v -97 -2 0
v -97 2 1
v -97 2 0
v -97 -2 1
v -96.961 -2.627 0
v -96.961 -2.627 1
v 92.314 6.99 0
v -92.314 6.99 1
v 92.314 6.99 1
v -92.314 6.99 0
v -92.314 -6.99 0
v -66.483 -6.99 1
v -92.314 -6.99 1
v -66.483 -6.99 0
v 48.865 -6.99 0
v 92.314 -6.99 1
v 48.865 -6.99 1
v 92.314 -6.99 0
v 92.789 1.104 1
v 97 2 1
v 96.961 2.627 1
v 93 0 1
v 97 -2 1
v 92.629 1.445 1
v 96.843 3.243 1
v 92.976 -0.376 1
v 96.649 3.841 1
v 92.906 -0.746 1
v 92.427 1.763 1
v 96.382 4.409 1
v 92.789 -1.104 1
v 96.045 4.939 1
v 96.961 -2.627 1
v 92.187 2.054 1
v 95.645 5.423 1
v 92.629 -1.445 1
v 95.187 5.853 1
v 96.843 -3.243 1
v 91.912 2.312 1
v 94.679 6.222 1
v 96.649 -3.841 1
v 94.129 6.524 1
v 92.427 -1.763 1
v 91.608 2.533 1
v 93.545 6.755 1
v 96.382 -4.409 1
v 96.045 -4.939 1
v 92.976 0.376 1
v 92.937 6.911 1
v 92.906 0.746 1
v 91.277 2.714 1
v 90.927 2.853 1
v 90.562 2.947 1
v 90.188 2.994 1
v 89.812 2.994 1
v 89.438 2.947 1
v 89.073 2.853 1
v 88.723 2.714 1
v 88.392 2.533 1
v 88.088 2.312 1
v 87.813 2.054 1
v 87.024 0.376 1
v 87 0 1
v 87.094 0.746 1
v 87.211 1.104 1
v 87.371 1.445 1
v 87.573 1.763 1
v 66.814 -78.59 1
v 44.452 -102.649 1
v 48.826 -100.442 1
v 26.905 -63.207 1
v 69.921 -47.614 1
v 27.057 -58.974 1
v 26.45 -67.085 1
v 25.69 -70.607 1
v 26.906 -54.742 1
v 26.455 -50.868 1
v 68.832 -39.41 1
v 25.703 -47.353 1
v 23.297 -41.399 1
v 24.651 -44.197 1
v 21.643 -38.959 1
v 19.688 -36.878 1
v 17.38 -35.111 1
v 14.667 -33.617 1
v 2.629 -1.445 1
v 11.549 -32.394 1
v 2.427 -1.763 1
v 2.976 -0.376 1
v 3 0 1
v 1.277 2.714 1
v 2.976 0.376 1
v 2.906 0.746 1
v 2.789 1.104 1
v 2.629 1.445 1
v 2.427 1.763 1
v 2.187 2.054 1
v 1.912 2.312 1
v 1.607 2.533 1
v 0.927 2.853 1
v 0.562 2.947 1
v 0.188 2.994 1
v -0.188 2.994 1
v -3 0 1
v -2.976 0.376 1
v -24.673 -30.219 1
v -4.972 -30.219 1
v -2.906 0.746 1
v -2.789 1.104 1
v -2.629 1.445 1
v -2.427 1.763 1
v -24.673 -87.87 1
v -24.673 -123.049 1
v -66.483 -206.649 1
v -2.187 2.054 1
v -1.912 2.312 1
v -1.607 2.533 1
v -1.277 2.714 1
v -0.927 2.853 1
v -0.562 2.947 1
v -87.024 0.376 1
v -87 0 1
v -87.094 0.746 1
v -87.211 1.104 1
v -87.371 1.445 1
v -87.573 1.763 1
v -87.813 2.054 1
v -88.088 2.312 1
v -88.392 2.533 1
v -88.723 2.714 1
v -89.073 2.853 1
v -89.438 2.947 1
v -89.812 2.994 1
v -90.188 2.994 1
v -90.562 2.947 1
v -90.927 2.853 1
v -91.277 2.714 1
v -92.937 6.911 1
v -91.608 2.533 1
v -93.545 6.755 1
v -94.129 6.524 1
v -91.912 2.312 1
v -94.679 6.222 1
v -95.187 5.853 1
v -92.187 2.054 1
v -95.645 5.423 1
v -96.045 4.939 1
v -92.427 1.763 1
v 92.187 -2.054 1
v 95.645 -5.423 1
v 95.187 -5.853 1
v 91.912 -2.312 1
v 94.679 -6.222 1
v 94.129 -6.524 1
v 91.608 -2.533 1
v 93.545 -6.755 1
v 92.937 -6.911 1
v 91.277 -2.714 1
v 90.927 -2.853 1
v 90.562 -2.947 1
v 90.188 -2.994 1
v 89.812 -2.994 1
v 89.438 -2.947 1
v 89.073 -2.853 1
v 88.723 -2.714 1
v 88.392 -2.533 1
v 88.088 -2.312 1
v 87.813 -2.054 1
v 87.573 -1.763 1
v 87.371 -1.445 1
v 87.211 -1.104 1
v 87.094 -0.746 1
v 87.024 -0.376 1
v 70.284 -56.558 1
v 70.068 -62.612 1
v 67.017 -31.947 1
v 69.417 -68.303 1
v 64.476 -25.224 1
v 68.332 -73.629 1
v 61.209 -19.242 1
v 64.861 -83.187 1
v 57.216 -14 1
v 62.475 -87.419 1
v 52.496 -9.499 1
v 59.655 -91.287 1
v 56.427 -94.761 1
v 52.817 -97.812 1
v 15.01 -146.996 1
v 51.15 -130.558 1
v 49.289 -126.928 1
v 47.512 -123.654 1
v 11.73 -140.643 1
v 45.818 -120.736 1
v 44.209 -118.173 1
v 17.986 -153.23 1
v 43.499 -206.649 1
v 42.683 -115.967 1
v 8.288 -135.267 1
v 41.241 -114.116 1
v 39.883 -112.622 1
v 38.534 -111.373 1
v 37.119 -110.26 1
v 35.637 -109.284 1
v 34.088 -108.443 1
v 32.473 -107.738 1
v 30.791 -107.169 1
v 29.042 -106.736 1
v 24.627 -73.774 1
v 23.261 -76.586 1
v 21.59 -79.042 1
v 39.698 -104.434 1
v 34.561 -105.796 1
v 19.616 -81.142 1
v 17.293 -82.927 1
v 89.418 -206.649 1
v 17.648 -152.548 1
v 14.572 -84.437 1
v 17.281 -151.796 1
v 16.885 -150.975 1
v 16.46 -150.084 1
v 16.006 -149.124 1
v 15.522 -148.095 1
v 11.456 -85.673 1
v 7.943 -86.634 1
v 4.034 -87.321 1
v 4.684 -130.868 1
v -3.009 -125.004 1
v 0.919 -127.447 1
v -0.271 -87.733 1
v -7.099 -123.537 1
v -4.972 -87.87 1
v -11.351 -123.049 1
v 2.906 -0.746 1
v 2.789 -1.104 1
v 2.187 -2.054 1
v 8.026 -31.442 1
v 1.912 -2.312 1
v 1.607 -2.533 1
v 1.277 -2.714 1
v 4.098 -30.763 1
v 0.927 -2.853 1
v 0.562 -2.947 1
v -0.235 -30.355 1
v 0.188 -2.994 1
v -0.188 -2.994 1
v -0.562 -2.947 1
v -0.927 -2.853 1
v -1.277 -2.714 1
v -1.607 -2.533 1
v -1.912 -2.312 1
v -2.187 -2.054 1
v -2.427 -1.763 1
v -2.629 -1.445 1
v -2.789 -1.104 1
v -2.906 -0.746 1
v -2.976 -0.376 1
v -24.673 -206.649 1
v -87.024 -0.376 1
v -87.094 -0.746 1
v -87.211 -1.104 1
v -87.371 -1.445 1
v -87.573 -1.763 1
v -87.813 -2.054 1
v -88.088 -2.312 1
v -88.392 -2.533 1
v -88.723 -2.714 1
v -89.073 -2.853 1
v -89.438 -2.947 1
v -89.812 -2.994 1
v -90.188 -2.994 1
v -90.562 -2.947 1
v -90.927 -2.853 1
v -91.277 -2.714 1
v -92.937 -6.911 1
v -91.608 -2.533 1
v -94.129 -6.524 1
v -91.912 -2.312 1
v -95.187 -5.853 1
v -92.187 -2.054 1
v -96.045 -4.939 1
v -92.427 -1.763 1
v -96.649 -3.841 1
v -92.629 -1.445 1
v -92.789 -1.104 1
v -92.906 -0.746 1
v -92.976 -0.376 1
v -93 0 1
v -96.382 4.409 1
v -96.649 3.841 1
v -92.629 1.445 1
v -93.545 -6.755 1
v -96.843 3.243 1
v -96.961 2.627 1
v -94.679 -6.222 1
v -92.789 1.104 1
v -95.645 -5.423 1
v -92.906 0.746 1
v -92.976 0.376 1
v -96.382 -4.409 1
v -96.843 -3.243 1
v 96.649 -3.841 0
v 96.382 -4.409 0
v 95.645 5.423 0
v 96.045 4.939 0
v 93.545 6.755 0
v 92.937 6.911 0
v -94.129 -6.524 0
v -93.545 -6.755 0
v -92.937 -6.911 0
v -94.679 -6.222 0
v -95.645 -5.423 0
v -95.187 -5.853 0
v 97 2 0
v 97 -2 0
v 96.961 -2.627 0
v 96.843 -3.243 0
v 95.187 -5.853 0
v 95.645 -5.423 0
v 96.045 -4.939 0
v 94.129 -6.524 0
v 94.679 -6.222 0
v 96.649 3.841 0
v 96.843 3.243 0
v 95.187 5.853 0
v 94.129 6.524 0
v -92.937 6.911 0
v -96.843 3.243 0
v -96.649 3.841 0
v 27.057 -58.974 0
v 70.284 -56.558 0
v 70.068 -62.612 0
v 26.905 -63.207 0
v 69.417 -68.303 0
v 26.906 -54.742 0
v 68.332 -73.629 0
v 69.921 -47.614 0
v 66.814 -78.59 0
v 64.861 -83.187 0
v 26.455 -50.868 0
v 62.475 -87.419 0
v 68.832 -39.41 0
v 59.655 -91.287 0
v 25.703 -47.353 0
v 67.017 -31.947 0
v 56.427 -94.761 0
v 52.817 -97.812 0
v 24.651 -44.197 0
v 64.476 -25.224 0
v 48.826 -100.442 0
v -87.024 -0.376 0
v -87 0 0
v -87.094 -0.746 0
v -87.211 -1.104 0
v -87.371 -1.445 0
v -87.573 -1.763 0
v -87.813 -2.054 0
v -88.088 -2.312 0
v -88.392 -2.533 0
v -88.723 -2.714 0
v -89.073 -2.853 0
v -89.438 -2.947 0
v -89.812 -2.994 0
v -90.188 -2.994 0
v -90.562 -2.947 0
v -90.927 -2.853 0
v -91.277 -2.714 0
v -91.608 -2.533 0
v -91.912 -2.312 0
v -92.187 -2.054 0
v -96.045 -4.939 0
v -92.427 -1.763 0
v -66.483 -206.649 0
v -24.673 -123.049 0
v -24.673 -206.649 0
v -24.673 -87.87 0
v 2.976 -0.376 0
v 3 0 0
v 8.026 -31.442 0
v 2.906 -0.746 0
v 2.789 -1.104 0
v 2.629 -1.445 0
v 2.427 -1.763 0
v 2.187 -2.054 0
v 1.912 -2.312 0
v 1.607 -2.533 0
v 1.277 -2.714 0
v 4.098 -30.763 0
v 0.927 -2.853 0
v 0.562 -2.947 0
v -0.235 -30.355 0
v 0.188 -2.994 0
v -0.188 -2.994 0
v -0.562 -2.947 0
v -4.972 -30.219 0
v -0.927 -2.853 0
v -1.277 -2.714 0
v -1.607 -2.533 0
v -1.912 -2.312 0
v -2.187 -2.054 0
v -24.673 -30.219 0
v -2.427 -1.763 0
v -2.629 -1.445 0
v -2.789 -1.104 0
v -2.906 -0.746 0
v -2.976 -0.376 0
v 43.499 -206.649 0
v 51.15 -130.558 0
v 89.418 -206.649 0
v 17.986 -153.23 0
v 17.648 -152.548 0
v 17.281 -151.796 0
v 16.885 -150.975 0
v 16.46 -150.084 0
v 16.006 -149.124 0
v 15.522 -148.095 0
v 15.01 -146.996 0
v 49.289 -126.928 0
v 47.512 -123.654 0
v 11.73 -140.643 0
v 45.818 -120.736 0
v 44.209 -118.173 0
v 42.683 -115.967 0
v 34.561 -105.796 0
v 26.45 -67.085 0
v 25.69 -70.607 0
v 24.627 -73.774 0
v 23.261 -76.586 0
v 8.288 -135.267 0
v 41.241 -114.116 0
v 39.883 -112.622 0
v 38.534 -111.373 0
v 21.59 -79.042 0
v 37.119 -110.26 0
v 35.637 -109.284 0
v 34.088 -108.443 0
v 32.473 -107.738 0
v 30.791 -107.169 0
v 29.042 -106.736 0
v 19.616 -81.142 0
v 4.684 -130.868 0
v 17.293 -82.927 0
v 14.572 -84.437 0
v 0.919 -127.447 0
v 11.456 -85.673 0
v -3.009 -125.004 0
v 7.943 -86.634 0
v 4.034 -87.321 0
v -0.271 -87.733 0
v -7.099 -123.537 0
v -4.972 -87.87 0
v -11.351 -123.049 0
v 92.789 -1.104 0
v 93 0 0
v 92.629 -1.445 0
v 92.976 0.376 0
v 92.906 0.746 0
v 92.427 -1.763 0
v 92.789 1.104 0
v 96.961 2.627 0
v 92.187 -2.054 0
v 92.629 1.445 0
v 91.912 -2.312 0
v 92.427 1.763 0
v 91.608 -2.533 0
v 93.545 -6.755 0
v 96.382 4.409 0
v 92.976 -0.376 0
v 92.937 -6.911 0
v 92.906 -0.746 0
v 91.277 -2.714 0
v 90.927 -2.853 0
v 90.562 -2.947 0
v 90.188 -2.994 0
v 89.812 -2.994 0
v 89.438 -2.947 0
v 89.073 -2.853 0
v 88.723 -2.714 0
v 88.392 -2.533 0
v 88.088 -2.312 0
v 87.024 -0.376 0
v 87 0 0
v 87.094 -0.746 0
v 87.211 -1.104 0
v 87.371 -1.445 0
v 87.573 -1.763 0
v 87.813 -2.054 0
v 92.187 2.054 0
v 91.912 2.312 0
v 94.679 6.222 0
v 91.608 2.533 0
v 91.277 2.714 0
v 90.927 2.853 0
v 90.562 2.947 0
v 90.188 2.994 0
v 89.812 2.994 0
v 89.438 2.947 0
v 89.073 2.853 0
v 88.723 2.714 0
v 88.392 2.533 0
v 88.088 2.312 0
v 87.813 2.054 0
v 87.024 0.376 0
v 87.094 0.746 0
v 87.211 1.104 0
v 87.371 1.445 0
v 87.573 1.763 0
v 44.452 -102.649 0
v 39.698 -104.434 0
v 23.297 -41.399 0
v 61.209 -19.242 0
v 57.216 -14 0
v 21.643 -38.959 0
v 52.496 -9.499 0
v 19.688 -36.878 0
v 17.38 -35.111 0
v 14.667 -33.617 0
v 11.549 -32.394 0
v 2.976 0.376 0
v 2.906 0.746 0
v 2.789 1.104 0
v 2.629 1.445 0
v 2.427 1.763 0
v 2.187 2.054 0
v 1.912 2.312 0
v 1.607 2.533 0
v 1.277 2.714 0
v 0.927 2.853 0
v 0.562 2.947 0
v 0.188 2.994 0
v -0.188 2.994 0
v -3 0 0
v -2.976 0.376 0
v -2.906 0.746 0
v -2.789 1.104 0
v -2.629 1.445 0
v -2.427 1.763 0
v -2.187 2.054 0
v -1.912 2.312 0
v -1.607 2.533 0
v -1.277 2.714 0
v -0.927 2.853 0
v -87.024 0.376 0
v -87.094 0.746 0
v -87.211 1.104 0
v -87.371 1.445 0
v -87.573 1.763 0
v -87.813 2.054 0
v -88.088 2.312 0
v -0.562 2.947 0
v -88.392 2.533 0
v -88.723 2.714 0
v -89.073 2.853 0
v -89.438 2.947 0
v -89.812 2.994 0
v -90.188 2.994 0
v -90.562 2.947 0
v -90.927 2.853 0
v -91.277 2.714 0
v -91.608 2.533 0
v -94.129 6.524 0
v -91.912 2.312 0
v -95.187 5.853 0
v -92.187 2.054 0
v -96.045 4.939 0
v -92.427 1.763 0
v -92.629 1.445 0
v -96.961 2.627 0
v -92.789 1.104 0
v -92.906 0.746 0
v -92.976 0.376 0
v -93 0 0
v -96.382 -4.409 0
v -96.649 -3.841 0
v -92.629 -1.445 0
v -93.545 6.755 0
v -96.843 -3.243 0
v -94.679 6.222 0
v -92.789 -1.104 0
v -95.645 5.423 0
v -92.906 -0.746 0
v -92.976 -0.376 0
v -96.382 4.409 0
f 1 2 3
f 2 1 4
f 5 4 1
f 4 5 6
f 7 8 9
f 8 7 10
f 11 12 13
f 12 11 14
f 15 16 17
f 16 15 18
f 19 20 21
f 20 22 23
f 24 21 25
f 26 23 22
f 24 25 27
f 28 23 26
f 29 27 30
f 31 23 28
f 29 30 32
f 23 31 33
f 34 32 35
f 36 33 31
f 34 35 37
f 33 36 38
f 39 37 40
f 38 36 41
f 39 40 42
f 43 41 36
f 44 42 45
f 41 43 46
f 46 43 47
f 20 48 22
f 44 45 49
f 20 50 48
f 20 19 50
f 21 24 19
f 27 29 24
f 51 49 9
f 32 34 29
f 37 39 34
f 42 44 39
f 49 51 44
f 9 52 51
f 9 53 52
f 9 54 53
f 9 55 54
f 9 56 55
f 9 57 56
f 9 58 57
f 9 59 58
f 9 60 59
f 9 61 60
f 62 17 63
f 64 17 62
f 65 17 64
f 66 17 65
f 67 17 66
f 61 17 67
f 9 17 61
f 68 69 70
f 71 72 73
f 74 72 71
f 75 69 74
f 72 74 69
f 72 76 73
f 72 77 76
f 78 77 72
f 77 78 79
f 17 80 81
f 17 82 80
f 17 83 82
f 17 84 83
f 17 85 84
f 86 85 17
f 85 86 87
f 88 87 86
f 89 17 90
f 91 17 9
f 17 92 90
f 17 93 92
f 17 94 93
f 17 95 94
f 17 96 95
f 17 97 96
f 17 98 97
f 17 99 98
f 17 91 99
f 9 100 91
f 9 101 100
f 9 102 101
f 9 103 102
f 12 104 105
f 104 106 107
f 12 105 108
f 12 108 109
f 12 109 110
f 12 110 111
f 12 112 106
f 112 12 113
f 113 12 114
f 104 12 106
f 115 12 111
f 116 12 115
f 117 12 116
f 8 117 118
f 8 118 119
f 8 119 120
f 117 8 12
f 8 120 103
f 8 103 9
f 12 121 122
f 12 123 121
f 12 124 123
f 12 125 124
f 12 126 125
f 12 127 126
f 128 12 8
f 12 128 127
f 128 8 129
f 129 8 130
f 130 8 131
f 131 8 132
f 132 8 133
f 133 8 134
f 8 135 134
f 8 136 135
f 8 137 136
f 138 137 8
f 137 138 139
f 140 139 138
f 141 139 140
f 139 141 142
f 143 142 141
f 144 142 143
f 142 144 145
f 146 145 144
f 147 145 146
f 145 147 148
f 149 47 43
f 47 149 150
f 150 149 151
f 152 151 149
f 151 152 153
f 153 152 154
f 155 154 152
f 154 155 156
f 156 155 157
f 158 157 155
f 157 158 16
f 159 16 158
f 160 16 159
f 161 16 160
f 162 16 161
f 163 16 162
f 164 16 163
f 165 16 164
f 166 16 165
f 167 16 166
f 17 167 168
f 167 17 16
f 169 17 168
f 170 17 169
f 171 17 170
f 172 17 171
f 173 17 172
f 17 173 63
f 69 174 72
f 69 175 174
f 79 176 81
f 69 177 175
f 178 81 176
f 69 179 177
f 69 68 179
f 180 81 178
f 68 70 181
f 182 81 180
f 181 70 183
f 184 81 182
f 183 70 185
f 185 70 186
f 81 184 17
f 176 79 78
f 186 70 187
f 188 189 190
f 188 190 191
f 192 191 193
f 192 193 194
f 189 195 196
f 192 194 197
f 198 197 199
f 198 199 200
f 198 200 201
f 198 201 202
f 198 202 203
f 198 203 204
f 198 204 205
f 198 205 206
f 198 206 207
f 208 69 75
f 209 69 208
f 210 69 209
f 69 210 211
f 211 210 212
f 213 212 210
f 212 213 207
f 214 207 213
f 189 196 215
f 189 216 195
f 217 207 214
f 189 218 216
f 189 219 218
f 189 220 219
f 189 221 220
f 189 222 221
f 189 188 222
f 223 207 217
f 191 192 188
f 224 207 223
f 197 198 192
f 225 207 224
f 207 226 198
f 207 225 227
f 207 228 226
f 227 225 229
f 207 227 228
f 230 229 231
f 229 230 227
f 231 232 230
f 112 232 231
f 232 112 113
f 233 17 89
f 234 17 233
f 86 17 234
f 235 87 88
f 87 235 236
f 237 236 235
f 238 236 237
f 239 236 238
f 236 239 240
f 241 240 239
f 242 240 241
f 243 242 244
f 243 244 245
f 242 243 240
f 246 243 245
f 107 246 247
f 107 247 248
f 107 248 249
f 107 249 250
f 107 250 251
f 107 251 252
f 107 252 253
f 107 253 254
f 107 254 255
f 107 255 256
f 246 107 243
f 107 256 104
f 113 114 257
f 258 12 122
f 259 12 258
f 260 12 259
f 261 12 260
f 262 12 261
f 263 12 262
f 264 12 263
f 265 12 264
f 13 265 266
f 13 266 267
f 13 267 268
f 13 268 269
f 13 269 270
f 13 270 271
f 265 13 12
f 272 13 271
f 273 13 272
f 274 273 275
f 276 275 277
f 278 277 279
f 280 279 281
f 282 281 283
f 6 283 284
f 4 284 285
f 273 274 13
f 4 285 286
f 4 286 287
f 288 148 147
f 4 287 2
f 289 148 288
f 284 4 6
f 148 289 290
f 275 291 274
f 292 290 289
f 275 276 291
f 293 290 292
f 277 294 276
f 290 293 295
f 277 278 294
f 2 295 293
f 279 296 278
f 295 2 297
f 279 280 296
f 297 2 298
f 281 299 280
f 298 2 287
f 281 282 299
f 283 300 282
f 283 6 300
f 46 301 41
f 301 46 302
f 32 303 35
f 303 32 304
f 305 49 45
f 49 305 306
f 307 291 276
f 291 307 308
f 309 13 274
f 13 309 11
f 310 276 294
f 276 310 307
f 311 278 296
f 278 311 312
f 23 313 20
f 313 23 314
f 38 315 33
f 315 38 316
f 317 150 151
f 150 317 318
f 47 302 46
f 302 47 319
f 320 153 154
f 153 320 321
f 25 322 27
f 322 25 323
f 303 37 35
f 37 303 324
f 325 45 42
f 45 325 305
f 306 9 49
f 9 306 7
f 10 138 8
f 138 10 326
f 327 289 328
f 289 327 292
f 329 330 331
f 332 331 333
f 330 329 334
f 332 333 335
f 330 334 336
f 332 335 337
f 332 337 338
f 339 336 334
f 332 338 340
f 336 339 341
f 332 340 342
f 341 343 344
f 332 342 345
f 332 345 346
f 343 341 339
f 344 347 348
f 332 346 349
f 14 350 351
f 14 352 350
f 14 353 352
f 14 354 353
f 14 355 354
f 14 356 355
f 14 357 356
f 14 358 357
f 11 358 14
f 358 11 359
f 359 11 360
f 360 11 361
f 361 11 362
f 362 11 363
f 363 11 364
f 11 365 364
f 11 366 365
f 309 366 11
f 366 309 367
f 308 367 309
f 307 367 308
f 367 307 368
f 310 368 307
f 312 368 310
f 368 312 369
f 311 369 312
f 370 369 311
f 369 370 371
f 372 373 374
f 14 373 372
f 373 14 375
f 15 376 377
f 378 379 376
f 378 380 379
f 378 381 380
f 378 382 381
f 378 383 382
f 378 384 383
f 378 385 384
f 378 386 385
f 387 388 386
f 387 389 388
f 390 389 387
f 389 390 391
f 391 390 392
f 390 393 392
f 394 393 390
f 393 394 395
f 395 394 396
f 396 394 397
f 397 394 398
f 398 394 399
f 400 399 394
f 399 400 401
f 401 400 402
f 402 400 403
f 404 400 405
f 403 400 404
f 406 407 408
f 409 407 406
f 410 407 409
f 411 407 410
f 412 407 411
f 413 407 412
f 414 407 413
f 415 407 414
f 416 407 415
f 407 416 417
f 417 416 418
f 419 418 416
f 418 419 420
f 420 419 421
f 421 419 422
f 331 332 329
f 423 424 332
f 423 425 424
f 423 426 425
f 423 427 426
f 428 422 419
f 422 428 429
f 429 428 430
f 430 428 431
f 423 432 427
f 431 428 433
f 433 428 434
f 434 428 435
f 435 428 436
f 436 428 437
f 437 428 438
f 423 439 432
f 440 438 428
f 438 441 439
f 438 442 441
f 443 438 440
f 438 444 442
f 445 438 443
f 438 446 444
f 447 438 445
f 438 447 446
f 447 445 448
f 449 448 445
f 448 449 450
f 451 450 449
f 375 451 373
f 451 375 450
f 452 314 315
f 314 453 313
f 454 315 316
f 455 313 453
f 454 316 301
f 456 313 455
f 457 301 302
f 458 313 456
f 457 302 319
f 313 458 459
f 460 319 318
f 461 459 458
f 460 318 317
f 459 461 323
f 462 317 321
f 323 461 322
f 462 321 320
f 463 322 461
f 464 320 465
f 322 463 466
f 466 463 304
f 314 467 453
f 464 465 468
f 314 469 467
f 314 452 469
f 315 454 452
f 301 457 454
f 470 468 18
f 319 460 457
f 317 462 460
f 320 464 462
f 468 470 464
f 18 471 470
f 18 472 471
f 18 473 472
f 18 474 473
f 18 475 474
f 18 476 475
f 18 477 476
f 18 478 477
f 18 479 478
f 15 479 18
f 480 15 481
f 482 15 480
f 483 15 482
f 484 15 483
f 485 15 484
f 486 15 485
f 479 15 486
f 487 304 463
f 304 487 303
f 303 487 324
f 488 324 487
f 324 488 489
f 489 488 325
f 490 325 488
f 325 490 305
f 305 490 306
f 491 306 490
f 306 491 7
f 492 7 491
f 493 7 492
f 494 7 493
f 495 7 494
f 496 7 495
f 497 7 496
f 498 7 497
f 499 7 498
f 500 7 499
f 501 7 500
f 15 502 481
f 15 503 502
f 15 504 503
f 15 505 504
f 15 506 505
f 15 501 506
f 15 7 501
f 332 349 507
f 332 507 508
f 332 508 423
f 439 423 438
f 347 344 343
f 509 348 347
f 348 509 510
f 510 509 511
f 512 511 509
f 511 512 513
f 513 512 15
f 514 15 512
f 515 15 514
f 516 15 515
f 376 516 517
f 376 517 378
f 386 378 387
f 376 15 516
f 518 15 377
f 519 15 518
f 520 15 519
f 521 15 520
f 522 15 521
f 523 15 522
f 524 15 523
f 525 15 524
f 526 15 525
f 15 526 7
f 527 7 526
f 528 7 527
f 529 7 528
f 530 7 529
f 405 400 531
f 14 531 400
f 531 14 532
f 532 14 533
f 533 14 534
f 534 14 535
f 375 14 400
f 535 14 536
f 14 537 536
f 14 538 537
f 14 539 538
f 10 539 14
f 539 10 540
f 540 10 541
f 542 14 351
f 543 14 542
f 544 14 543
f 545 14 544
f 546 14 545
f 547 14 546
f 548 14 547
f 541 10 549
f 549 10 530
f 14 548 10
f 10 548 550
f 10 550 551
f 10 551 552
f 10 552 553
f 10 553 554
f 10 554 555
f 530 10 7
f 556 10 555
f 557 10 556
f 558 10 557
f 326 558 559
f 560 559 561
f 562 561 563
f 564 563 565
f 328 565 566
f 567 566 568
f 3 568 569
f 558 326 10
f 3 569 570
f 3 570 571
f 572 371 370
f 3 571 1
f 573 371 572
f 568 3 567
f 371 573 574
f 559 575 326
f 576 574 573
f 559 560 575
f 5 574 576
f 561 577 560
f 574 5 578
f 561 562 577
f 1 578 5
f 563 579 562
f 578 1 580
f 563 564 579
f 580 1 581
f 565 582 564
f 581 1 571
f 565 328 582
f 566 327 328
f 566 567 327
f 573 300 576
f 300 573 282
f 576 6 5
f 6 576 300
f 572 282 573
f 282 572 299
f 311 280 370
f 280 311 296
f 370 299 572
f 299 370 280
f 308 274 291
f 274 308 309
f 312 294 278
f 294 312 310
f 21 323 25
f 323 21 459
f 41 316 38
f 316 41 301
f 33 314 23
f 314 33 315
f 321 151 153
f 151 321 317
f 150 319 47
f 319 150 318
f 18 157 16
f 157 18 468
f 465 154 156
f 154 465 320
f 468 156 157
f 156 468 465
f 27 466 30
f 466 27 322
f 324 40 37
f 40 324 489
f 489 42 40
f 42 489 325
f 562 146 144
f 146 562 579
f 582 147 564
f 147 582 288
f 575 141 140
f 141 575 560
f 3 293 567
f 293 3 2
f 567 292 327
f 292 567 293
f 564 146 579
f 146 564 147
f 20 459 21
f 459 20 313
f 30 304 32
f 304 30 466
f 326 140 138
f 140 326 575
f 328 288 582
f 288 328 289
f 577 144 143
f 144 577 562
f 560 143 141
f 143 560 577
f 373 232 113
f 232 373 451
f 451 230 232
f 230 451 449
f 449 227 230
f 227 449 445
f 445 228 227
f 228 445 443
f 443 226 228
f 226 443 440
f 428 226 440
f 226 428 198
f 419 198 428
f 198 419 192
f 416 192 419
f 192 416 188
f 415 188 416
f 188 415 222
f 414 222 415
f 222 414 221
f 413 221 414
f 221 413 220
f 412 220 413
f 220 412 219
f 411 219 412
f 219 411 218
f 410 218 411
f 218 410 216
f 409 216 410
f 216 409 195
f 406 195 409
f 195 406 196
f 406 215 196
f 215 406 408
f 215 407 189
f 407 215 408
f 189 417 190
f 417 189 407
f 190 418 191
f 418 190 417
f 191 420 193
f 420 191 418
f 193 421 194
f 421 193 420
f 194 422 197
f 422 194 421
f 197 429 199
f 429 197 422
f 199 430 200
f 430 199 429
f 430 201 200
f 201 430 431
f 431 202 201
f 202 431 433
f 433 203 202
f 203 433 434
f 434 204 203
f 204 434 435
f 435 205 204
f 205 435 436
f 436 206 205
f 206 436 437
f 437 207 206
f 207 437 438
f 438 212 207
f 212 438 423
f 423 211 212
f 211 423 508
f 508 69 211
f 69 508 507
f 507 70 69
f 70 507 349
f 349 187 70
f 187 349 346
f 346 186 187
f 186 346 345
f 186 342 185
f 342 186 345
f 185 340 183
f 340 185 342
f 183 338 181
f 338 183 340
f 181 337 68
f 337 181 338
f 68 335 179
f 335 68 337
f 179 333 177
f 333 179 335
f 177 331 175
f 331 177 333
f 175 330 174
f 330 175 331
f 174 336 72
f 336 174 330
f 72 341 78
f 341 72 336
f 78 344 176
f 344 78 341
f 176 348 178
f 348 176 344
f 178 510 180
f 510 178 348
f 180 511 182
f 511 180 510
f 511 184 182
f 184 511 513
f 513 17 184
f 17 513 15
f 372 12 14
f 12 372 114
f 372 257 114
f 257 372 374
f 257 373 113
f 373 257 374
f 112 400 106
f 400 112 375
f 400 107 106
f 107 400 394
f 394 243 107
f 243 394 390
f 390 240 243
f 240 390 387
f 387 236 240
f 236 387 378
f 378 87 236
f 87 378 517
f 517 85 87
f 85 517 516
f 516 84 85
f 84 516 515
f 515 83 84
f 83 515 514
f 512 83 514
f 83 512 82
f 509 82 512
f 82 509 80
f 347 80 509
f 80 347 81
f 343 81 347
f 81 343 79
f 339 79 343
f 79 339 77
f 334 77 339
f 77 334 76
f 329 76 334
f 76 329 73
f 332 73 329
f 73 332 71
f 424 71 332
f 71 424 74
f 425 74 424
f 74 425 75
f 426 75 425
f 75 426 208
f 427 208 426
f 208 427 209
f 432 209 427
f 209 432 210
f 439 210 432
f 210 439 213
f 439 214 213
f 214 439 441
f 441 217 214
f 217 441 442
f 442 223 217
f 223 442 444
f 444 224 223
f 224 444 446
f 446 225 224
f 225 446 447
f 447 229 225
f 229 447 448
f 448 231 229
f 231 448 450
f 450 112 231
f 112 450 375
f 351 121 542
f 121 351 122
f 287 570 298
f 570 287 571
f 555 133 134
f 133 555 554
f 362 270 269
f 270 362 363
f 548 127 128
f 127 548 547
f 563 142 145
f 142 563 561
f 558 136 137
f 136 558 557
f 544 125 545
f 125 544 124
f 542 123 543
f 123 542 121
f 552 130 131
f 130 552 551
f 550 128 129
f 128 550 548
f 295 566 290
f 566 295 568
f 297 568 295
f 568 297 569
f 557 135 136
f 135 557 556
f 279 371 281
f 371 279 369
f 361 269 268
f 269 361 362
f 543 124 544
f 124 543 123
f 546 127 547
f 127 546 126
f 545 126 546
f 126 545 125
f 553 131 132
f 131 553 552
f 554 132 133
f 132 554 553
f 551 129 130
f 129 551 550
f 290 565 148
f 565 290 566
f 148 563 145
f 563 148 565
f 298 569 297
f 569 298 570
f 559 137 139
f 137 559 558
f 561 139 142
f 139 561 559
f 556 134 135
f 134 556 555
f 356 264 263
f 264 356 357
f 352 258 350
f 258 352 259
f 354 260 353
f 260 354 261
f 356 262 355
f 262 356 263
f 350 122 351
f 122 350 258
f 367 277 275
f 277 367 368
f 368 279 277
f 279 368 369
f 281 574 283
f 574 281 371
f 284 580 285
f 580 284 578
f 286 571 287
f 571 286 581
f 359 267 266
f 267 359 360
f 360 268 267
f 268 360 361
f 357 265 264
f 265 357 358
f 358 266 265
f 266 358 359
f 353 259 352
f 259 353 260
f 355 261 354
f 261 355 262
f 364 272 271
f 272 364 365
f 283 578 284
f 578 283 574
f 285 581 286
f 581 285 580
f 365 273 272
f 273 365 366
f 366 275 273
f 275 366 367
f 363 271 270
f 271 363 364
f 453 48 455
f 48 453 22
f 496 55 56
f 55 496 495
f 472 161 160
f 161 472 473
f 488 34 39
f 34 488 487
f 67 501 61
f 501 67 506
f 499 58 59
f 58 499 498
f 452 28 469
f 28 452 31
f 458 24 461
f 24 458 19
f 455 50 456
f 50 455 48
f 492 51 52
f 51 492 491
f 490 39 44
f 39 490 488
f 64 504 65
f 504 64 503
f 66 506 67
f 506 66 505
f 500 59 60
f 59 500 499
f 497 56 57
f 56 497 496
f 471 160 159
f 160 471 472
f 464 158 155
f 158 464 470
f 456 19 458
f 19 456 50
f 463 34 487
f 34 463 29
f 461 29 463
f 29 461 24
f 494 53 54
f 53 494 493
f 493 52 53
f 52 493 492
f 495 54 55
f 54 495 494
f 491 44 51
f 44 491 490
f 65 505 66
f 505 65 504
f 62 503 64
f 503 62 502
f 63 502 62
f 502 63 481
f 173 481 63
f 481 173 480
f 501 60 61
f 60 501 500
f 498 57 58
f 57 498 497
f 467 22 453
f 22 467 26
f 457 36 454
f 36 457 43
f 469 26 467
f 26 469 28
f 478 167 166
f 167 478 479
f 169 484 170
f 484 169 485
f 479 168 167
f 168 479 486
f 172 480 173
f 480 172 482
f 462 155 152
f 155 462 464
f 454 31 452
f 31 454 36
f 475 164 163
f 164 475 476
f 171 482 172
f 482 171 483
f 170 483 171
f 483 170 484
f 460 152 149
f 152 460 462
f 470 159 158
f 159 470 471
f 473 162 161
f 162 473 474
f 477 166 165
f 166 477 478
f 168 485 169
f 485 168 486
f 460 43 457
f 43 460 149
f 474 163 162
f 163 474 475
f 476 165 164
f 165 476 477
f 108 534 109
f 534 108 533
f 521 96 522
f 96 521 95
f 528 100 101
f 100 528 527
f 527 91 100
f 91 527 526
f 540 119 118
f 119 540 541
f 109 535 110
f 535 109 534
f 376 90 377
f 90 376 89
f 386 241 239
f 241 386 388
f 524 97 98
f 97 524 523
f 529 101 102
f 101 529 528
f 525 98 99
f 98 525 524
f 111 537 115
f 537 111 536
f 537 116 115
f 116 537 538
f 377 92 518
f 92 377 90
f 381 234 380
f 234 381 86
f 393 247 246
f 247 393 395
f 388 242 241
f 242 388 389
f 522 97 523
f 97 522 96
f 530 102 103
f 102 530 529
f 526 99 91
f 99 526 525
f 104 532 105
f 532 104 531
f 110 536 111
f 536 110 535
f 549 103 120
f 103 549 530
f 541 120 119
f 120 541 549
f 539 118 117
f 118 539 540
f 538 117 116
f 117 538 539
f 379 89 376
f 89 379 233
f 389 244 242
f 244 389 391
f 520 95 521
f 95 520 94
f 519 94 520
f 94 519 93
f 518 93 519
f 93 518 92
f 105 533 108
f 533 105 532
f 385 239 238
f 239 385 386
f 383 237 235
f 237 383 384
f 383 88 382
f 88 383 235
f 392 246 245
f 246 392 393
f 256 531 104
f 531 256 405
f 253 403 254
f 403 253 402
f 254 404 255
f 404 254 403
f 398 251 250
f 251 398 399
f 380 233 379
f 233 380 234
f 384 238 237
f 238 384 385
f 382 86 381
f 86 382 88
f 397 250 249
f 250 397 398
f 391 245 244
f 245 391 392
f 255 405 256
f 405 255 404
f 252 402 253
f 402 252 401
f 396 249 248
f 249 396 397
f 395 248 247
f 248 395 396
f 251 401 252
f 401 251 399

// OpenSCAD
$fn = 50;


difference() {
	union() {
		translate(v = [0, 0, 0]) {
			rotate(a = [0, 0, 0]) {
				hull() {
					translate(v = [-92.0000000000, 2.0000000000, 0]) {
						rotate(a = [0, 0, 0]) {
							translate(v = [0, 0, 0]) {
								rotate(a = [0, 0, 0]) {
									cylinder(h = 1, r = 5);
								}
							}
						}
					}
					translate(v = [92.0000000000, 2.0000000000, 0]) {
						rotate(a = [0, 0, 0]) {
							translate(v = [0, 0, 0]) {
								rotate(a = [0, 0, 0]) {
									cylinder(h = 1, r = 5);
								}
							}
						}
					}
					translate(v = [-92.0000000000, -2.0000000000, 0]) {
						rotate(a = [0, 0, 0]) {
							translate(v = [0, 0, 0]) {
								rotate(a = [0, 0, 0]) {
									cylinder(h = 1, r = 5);
								}
							}
						}
					}
					translate(v = [92.0000000000, -2.0000000000, 0]) {
						rotate(a = [0, 0, 0]) {
							translate(v = [0, 0, 0]) {
								rotate(a = [0, 0, 0]) {
									cylinder(h = 1, r = 5);
								}
							}
						}
					}
				}
			}
		}
		translate(v = [0, 0, 0]) {
			rotate(a = [0, 0, 0]) {
				linear_extrude(height = 1) {
					text(font = "DejaVu Sans Mono:style=Bold", halign = "center", size = 209.0000000000, text = "R", valign = "top");
				}
			}
		}
	}
	union() {
		translate(v = [-90.0000000000, 0.0000000000, -125.0000000000]) {
			rotate(a = [0, 0, 0]) {
				cylinder(h = 250, r = 3.0000000000);
			}
		}
		translate(v = [90.0000000000, 0.0000000000, -125.0000000000]) {
			rotate(a = [0, 0, 0]) {
				cylinder(h = 250, r = 3.0000000000);
			}
		}
		translate(v = [90.0000000000, 0.0000000000, -125.0000000000]) {
			rotate(a = [0, 0, 0]) {
				cylinder(h = 250, r = 3.0000000000);
			}
		}
		translate(v = [0, 0, -125.0000000000]) {
			rotate(a = [0, 0, 0]) {
				cylinder(h = 250, r = 3.0000000000);
			}
		}
	}
}
